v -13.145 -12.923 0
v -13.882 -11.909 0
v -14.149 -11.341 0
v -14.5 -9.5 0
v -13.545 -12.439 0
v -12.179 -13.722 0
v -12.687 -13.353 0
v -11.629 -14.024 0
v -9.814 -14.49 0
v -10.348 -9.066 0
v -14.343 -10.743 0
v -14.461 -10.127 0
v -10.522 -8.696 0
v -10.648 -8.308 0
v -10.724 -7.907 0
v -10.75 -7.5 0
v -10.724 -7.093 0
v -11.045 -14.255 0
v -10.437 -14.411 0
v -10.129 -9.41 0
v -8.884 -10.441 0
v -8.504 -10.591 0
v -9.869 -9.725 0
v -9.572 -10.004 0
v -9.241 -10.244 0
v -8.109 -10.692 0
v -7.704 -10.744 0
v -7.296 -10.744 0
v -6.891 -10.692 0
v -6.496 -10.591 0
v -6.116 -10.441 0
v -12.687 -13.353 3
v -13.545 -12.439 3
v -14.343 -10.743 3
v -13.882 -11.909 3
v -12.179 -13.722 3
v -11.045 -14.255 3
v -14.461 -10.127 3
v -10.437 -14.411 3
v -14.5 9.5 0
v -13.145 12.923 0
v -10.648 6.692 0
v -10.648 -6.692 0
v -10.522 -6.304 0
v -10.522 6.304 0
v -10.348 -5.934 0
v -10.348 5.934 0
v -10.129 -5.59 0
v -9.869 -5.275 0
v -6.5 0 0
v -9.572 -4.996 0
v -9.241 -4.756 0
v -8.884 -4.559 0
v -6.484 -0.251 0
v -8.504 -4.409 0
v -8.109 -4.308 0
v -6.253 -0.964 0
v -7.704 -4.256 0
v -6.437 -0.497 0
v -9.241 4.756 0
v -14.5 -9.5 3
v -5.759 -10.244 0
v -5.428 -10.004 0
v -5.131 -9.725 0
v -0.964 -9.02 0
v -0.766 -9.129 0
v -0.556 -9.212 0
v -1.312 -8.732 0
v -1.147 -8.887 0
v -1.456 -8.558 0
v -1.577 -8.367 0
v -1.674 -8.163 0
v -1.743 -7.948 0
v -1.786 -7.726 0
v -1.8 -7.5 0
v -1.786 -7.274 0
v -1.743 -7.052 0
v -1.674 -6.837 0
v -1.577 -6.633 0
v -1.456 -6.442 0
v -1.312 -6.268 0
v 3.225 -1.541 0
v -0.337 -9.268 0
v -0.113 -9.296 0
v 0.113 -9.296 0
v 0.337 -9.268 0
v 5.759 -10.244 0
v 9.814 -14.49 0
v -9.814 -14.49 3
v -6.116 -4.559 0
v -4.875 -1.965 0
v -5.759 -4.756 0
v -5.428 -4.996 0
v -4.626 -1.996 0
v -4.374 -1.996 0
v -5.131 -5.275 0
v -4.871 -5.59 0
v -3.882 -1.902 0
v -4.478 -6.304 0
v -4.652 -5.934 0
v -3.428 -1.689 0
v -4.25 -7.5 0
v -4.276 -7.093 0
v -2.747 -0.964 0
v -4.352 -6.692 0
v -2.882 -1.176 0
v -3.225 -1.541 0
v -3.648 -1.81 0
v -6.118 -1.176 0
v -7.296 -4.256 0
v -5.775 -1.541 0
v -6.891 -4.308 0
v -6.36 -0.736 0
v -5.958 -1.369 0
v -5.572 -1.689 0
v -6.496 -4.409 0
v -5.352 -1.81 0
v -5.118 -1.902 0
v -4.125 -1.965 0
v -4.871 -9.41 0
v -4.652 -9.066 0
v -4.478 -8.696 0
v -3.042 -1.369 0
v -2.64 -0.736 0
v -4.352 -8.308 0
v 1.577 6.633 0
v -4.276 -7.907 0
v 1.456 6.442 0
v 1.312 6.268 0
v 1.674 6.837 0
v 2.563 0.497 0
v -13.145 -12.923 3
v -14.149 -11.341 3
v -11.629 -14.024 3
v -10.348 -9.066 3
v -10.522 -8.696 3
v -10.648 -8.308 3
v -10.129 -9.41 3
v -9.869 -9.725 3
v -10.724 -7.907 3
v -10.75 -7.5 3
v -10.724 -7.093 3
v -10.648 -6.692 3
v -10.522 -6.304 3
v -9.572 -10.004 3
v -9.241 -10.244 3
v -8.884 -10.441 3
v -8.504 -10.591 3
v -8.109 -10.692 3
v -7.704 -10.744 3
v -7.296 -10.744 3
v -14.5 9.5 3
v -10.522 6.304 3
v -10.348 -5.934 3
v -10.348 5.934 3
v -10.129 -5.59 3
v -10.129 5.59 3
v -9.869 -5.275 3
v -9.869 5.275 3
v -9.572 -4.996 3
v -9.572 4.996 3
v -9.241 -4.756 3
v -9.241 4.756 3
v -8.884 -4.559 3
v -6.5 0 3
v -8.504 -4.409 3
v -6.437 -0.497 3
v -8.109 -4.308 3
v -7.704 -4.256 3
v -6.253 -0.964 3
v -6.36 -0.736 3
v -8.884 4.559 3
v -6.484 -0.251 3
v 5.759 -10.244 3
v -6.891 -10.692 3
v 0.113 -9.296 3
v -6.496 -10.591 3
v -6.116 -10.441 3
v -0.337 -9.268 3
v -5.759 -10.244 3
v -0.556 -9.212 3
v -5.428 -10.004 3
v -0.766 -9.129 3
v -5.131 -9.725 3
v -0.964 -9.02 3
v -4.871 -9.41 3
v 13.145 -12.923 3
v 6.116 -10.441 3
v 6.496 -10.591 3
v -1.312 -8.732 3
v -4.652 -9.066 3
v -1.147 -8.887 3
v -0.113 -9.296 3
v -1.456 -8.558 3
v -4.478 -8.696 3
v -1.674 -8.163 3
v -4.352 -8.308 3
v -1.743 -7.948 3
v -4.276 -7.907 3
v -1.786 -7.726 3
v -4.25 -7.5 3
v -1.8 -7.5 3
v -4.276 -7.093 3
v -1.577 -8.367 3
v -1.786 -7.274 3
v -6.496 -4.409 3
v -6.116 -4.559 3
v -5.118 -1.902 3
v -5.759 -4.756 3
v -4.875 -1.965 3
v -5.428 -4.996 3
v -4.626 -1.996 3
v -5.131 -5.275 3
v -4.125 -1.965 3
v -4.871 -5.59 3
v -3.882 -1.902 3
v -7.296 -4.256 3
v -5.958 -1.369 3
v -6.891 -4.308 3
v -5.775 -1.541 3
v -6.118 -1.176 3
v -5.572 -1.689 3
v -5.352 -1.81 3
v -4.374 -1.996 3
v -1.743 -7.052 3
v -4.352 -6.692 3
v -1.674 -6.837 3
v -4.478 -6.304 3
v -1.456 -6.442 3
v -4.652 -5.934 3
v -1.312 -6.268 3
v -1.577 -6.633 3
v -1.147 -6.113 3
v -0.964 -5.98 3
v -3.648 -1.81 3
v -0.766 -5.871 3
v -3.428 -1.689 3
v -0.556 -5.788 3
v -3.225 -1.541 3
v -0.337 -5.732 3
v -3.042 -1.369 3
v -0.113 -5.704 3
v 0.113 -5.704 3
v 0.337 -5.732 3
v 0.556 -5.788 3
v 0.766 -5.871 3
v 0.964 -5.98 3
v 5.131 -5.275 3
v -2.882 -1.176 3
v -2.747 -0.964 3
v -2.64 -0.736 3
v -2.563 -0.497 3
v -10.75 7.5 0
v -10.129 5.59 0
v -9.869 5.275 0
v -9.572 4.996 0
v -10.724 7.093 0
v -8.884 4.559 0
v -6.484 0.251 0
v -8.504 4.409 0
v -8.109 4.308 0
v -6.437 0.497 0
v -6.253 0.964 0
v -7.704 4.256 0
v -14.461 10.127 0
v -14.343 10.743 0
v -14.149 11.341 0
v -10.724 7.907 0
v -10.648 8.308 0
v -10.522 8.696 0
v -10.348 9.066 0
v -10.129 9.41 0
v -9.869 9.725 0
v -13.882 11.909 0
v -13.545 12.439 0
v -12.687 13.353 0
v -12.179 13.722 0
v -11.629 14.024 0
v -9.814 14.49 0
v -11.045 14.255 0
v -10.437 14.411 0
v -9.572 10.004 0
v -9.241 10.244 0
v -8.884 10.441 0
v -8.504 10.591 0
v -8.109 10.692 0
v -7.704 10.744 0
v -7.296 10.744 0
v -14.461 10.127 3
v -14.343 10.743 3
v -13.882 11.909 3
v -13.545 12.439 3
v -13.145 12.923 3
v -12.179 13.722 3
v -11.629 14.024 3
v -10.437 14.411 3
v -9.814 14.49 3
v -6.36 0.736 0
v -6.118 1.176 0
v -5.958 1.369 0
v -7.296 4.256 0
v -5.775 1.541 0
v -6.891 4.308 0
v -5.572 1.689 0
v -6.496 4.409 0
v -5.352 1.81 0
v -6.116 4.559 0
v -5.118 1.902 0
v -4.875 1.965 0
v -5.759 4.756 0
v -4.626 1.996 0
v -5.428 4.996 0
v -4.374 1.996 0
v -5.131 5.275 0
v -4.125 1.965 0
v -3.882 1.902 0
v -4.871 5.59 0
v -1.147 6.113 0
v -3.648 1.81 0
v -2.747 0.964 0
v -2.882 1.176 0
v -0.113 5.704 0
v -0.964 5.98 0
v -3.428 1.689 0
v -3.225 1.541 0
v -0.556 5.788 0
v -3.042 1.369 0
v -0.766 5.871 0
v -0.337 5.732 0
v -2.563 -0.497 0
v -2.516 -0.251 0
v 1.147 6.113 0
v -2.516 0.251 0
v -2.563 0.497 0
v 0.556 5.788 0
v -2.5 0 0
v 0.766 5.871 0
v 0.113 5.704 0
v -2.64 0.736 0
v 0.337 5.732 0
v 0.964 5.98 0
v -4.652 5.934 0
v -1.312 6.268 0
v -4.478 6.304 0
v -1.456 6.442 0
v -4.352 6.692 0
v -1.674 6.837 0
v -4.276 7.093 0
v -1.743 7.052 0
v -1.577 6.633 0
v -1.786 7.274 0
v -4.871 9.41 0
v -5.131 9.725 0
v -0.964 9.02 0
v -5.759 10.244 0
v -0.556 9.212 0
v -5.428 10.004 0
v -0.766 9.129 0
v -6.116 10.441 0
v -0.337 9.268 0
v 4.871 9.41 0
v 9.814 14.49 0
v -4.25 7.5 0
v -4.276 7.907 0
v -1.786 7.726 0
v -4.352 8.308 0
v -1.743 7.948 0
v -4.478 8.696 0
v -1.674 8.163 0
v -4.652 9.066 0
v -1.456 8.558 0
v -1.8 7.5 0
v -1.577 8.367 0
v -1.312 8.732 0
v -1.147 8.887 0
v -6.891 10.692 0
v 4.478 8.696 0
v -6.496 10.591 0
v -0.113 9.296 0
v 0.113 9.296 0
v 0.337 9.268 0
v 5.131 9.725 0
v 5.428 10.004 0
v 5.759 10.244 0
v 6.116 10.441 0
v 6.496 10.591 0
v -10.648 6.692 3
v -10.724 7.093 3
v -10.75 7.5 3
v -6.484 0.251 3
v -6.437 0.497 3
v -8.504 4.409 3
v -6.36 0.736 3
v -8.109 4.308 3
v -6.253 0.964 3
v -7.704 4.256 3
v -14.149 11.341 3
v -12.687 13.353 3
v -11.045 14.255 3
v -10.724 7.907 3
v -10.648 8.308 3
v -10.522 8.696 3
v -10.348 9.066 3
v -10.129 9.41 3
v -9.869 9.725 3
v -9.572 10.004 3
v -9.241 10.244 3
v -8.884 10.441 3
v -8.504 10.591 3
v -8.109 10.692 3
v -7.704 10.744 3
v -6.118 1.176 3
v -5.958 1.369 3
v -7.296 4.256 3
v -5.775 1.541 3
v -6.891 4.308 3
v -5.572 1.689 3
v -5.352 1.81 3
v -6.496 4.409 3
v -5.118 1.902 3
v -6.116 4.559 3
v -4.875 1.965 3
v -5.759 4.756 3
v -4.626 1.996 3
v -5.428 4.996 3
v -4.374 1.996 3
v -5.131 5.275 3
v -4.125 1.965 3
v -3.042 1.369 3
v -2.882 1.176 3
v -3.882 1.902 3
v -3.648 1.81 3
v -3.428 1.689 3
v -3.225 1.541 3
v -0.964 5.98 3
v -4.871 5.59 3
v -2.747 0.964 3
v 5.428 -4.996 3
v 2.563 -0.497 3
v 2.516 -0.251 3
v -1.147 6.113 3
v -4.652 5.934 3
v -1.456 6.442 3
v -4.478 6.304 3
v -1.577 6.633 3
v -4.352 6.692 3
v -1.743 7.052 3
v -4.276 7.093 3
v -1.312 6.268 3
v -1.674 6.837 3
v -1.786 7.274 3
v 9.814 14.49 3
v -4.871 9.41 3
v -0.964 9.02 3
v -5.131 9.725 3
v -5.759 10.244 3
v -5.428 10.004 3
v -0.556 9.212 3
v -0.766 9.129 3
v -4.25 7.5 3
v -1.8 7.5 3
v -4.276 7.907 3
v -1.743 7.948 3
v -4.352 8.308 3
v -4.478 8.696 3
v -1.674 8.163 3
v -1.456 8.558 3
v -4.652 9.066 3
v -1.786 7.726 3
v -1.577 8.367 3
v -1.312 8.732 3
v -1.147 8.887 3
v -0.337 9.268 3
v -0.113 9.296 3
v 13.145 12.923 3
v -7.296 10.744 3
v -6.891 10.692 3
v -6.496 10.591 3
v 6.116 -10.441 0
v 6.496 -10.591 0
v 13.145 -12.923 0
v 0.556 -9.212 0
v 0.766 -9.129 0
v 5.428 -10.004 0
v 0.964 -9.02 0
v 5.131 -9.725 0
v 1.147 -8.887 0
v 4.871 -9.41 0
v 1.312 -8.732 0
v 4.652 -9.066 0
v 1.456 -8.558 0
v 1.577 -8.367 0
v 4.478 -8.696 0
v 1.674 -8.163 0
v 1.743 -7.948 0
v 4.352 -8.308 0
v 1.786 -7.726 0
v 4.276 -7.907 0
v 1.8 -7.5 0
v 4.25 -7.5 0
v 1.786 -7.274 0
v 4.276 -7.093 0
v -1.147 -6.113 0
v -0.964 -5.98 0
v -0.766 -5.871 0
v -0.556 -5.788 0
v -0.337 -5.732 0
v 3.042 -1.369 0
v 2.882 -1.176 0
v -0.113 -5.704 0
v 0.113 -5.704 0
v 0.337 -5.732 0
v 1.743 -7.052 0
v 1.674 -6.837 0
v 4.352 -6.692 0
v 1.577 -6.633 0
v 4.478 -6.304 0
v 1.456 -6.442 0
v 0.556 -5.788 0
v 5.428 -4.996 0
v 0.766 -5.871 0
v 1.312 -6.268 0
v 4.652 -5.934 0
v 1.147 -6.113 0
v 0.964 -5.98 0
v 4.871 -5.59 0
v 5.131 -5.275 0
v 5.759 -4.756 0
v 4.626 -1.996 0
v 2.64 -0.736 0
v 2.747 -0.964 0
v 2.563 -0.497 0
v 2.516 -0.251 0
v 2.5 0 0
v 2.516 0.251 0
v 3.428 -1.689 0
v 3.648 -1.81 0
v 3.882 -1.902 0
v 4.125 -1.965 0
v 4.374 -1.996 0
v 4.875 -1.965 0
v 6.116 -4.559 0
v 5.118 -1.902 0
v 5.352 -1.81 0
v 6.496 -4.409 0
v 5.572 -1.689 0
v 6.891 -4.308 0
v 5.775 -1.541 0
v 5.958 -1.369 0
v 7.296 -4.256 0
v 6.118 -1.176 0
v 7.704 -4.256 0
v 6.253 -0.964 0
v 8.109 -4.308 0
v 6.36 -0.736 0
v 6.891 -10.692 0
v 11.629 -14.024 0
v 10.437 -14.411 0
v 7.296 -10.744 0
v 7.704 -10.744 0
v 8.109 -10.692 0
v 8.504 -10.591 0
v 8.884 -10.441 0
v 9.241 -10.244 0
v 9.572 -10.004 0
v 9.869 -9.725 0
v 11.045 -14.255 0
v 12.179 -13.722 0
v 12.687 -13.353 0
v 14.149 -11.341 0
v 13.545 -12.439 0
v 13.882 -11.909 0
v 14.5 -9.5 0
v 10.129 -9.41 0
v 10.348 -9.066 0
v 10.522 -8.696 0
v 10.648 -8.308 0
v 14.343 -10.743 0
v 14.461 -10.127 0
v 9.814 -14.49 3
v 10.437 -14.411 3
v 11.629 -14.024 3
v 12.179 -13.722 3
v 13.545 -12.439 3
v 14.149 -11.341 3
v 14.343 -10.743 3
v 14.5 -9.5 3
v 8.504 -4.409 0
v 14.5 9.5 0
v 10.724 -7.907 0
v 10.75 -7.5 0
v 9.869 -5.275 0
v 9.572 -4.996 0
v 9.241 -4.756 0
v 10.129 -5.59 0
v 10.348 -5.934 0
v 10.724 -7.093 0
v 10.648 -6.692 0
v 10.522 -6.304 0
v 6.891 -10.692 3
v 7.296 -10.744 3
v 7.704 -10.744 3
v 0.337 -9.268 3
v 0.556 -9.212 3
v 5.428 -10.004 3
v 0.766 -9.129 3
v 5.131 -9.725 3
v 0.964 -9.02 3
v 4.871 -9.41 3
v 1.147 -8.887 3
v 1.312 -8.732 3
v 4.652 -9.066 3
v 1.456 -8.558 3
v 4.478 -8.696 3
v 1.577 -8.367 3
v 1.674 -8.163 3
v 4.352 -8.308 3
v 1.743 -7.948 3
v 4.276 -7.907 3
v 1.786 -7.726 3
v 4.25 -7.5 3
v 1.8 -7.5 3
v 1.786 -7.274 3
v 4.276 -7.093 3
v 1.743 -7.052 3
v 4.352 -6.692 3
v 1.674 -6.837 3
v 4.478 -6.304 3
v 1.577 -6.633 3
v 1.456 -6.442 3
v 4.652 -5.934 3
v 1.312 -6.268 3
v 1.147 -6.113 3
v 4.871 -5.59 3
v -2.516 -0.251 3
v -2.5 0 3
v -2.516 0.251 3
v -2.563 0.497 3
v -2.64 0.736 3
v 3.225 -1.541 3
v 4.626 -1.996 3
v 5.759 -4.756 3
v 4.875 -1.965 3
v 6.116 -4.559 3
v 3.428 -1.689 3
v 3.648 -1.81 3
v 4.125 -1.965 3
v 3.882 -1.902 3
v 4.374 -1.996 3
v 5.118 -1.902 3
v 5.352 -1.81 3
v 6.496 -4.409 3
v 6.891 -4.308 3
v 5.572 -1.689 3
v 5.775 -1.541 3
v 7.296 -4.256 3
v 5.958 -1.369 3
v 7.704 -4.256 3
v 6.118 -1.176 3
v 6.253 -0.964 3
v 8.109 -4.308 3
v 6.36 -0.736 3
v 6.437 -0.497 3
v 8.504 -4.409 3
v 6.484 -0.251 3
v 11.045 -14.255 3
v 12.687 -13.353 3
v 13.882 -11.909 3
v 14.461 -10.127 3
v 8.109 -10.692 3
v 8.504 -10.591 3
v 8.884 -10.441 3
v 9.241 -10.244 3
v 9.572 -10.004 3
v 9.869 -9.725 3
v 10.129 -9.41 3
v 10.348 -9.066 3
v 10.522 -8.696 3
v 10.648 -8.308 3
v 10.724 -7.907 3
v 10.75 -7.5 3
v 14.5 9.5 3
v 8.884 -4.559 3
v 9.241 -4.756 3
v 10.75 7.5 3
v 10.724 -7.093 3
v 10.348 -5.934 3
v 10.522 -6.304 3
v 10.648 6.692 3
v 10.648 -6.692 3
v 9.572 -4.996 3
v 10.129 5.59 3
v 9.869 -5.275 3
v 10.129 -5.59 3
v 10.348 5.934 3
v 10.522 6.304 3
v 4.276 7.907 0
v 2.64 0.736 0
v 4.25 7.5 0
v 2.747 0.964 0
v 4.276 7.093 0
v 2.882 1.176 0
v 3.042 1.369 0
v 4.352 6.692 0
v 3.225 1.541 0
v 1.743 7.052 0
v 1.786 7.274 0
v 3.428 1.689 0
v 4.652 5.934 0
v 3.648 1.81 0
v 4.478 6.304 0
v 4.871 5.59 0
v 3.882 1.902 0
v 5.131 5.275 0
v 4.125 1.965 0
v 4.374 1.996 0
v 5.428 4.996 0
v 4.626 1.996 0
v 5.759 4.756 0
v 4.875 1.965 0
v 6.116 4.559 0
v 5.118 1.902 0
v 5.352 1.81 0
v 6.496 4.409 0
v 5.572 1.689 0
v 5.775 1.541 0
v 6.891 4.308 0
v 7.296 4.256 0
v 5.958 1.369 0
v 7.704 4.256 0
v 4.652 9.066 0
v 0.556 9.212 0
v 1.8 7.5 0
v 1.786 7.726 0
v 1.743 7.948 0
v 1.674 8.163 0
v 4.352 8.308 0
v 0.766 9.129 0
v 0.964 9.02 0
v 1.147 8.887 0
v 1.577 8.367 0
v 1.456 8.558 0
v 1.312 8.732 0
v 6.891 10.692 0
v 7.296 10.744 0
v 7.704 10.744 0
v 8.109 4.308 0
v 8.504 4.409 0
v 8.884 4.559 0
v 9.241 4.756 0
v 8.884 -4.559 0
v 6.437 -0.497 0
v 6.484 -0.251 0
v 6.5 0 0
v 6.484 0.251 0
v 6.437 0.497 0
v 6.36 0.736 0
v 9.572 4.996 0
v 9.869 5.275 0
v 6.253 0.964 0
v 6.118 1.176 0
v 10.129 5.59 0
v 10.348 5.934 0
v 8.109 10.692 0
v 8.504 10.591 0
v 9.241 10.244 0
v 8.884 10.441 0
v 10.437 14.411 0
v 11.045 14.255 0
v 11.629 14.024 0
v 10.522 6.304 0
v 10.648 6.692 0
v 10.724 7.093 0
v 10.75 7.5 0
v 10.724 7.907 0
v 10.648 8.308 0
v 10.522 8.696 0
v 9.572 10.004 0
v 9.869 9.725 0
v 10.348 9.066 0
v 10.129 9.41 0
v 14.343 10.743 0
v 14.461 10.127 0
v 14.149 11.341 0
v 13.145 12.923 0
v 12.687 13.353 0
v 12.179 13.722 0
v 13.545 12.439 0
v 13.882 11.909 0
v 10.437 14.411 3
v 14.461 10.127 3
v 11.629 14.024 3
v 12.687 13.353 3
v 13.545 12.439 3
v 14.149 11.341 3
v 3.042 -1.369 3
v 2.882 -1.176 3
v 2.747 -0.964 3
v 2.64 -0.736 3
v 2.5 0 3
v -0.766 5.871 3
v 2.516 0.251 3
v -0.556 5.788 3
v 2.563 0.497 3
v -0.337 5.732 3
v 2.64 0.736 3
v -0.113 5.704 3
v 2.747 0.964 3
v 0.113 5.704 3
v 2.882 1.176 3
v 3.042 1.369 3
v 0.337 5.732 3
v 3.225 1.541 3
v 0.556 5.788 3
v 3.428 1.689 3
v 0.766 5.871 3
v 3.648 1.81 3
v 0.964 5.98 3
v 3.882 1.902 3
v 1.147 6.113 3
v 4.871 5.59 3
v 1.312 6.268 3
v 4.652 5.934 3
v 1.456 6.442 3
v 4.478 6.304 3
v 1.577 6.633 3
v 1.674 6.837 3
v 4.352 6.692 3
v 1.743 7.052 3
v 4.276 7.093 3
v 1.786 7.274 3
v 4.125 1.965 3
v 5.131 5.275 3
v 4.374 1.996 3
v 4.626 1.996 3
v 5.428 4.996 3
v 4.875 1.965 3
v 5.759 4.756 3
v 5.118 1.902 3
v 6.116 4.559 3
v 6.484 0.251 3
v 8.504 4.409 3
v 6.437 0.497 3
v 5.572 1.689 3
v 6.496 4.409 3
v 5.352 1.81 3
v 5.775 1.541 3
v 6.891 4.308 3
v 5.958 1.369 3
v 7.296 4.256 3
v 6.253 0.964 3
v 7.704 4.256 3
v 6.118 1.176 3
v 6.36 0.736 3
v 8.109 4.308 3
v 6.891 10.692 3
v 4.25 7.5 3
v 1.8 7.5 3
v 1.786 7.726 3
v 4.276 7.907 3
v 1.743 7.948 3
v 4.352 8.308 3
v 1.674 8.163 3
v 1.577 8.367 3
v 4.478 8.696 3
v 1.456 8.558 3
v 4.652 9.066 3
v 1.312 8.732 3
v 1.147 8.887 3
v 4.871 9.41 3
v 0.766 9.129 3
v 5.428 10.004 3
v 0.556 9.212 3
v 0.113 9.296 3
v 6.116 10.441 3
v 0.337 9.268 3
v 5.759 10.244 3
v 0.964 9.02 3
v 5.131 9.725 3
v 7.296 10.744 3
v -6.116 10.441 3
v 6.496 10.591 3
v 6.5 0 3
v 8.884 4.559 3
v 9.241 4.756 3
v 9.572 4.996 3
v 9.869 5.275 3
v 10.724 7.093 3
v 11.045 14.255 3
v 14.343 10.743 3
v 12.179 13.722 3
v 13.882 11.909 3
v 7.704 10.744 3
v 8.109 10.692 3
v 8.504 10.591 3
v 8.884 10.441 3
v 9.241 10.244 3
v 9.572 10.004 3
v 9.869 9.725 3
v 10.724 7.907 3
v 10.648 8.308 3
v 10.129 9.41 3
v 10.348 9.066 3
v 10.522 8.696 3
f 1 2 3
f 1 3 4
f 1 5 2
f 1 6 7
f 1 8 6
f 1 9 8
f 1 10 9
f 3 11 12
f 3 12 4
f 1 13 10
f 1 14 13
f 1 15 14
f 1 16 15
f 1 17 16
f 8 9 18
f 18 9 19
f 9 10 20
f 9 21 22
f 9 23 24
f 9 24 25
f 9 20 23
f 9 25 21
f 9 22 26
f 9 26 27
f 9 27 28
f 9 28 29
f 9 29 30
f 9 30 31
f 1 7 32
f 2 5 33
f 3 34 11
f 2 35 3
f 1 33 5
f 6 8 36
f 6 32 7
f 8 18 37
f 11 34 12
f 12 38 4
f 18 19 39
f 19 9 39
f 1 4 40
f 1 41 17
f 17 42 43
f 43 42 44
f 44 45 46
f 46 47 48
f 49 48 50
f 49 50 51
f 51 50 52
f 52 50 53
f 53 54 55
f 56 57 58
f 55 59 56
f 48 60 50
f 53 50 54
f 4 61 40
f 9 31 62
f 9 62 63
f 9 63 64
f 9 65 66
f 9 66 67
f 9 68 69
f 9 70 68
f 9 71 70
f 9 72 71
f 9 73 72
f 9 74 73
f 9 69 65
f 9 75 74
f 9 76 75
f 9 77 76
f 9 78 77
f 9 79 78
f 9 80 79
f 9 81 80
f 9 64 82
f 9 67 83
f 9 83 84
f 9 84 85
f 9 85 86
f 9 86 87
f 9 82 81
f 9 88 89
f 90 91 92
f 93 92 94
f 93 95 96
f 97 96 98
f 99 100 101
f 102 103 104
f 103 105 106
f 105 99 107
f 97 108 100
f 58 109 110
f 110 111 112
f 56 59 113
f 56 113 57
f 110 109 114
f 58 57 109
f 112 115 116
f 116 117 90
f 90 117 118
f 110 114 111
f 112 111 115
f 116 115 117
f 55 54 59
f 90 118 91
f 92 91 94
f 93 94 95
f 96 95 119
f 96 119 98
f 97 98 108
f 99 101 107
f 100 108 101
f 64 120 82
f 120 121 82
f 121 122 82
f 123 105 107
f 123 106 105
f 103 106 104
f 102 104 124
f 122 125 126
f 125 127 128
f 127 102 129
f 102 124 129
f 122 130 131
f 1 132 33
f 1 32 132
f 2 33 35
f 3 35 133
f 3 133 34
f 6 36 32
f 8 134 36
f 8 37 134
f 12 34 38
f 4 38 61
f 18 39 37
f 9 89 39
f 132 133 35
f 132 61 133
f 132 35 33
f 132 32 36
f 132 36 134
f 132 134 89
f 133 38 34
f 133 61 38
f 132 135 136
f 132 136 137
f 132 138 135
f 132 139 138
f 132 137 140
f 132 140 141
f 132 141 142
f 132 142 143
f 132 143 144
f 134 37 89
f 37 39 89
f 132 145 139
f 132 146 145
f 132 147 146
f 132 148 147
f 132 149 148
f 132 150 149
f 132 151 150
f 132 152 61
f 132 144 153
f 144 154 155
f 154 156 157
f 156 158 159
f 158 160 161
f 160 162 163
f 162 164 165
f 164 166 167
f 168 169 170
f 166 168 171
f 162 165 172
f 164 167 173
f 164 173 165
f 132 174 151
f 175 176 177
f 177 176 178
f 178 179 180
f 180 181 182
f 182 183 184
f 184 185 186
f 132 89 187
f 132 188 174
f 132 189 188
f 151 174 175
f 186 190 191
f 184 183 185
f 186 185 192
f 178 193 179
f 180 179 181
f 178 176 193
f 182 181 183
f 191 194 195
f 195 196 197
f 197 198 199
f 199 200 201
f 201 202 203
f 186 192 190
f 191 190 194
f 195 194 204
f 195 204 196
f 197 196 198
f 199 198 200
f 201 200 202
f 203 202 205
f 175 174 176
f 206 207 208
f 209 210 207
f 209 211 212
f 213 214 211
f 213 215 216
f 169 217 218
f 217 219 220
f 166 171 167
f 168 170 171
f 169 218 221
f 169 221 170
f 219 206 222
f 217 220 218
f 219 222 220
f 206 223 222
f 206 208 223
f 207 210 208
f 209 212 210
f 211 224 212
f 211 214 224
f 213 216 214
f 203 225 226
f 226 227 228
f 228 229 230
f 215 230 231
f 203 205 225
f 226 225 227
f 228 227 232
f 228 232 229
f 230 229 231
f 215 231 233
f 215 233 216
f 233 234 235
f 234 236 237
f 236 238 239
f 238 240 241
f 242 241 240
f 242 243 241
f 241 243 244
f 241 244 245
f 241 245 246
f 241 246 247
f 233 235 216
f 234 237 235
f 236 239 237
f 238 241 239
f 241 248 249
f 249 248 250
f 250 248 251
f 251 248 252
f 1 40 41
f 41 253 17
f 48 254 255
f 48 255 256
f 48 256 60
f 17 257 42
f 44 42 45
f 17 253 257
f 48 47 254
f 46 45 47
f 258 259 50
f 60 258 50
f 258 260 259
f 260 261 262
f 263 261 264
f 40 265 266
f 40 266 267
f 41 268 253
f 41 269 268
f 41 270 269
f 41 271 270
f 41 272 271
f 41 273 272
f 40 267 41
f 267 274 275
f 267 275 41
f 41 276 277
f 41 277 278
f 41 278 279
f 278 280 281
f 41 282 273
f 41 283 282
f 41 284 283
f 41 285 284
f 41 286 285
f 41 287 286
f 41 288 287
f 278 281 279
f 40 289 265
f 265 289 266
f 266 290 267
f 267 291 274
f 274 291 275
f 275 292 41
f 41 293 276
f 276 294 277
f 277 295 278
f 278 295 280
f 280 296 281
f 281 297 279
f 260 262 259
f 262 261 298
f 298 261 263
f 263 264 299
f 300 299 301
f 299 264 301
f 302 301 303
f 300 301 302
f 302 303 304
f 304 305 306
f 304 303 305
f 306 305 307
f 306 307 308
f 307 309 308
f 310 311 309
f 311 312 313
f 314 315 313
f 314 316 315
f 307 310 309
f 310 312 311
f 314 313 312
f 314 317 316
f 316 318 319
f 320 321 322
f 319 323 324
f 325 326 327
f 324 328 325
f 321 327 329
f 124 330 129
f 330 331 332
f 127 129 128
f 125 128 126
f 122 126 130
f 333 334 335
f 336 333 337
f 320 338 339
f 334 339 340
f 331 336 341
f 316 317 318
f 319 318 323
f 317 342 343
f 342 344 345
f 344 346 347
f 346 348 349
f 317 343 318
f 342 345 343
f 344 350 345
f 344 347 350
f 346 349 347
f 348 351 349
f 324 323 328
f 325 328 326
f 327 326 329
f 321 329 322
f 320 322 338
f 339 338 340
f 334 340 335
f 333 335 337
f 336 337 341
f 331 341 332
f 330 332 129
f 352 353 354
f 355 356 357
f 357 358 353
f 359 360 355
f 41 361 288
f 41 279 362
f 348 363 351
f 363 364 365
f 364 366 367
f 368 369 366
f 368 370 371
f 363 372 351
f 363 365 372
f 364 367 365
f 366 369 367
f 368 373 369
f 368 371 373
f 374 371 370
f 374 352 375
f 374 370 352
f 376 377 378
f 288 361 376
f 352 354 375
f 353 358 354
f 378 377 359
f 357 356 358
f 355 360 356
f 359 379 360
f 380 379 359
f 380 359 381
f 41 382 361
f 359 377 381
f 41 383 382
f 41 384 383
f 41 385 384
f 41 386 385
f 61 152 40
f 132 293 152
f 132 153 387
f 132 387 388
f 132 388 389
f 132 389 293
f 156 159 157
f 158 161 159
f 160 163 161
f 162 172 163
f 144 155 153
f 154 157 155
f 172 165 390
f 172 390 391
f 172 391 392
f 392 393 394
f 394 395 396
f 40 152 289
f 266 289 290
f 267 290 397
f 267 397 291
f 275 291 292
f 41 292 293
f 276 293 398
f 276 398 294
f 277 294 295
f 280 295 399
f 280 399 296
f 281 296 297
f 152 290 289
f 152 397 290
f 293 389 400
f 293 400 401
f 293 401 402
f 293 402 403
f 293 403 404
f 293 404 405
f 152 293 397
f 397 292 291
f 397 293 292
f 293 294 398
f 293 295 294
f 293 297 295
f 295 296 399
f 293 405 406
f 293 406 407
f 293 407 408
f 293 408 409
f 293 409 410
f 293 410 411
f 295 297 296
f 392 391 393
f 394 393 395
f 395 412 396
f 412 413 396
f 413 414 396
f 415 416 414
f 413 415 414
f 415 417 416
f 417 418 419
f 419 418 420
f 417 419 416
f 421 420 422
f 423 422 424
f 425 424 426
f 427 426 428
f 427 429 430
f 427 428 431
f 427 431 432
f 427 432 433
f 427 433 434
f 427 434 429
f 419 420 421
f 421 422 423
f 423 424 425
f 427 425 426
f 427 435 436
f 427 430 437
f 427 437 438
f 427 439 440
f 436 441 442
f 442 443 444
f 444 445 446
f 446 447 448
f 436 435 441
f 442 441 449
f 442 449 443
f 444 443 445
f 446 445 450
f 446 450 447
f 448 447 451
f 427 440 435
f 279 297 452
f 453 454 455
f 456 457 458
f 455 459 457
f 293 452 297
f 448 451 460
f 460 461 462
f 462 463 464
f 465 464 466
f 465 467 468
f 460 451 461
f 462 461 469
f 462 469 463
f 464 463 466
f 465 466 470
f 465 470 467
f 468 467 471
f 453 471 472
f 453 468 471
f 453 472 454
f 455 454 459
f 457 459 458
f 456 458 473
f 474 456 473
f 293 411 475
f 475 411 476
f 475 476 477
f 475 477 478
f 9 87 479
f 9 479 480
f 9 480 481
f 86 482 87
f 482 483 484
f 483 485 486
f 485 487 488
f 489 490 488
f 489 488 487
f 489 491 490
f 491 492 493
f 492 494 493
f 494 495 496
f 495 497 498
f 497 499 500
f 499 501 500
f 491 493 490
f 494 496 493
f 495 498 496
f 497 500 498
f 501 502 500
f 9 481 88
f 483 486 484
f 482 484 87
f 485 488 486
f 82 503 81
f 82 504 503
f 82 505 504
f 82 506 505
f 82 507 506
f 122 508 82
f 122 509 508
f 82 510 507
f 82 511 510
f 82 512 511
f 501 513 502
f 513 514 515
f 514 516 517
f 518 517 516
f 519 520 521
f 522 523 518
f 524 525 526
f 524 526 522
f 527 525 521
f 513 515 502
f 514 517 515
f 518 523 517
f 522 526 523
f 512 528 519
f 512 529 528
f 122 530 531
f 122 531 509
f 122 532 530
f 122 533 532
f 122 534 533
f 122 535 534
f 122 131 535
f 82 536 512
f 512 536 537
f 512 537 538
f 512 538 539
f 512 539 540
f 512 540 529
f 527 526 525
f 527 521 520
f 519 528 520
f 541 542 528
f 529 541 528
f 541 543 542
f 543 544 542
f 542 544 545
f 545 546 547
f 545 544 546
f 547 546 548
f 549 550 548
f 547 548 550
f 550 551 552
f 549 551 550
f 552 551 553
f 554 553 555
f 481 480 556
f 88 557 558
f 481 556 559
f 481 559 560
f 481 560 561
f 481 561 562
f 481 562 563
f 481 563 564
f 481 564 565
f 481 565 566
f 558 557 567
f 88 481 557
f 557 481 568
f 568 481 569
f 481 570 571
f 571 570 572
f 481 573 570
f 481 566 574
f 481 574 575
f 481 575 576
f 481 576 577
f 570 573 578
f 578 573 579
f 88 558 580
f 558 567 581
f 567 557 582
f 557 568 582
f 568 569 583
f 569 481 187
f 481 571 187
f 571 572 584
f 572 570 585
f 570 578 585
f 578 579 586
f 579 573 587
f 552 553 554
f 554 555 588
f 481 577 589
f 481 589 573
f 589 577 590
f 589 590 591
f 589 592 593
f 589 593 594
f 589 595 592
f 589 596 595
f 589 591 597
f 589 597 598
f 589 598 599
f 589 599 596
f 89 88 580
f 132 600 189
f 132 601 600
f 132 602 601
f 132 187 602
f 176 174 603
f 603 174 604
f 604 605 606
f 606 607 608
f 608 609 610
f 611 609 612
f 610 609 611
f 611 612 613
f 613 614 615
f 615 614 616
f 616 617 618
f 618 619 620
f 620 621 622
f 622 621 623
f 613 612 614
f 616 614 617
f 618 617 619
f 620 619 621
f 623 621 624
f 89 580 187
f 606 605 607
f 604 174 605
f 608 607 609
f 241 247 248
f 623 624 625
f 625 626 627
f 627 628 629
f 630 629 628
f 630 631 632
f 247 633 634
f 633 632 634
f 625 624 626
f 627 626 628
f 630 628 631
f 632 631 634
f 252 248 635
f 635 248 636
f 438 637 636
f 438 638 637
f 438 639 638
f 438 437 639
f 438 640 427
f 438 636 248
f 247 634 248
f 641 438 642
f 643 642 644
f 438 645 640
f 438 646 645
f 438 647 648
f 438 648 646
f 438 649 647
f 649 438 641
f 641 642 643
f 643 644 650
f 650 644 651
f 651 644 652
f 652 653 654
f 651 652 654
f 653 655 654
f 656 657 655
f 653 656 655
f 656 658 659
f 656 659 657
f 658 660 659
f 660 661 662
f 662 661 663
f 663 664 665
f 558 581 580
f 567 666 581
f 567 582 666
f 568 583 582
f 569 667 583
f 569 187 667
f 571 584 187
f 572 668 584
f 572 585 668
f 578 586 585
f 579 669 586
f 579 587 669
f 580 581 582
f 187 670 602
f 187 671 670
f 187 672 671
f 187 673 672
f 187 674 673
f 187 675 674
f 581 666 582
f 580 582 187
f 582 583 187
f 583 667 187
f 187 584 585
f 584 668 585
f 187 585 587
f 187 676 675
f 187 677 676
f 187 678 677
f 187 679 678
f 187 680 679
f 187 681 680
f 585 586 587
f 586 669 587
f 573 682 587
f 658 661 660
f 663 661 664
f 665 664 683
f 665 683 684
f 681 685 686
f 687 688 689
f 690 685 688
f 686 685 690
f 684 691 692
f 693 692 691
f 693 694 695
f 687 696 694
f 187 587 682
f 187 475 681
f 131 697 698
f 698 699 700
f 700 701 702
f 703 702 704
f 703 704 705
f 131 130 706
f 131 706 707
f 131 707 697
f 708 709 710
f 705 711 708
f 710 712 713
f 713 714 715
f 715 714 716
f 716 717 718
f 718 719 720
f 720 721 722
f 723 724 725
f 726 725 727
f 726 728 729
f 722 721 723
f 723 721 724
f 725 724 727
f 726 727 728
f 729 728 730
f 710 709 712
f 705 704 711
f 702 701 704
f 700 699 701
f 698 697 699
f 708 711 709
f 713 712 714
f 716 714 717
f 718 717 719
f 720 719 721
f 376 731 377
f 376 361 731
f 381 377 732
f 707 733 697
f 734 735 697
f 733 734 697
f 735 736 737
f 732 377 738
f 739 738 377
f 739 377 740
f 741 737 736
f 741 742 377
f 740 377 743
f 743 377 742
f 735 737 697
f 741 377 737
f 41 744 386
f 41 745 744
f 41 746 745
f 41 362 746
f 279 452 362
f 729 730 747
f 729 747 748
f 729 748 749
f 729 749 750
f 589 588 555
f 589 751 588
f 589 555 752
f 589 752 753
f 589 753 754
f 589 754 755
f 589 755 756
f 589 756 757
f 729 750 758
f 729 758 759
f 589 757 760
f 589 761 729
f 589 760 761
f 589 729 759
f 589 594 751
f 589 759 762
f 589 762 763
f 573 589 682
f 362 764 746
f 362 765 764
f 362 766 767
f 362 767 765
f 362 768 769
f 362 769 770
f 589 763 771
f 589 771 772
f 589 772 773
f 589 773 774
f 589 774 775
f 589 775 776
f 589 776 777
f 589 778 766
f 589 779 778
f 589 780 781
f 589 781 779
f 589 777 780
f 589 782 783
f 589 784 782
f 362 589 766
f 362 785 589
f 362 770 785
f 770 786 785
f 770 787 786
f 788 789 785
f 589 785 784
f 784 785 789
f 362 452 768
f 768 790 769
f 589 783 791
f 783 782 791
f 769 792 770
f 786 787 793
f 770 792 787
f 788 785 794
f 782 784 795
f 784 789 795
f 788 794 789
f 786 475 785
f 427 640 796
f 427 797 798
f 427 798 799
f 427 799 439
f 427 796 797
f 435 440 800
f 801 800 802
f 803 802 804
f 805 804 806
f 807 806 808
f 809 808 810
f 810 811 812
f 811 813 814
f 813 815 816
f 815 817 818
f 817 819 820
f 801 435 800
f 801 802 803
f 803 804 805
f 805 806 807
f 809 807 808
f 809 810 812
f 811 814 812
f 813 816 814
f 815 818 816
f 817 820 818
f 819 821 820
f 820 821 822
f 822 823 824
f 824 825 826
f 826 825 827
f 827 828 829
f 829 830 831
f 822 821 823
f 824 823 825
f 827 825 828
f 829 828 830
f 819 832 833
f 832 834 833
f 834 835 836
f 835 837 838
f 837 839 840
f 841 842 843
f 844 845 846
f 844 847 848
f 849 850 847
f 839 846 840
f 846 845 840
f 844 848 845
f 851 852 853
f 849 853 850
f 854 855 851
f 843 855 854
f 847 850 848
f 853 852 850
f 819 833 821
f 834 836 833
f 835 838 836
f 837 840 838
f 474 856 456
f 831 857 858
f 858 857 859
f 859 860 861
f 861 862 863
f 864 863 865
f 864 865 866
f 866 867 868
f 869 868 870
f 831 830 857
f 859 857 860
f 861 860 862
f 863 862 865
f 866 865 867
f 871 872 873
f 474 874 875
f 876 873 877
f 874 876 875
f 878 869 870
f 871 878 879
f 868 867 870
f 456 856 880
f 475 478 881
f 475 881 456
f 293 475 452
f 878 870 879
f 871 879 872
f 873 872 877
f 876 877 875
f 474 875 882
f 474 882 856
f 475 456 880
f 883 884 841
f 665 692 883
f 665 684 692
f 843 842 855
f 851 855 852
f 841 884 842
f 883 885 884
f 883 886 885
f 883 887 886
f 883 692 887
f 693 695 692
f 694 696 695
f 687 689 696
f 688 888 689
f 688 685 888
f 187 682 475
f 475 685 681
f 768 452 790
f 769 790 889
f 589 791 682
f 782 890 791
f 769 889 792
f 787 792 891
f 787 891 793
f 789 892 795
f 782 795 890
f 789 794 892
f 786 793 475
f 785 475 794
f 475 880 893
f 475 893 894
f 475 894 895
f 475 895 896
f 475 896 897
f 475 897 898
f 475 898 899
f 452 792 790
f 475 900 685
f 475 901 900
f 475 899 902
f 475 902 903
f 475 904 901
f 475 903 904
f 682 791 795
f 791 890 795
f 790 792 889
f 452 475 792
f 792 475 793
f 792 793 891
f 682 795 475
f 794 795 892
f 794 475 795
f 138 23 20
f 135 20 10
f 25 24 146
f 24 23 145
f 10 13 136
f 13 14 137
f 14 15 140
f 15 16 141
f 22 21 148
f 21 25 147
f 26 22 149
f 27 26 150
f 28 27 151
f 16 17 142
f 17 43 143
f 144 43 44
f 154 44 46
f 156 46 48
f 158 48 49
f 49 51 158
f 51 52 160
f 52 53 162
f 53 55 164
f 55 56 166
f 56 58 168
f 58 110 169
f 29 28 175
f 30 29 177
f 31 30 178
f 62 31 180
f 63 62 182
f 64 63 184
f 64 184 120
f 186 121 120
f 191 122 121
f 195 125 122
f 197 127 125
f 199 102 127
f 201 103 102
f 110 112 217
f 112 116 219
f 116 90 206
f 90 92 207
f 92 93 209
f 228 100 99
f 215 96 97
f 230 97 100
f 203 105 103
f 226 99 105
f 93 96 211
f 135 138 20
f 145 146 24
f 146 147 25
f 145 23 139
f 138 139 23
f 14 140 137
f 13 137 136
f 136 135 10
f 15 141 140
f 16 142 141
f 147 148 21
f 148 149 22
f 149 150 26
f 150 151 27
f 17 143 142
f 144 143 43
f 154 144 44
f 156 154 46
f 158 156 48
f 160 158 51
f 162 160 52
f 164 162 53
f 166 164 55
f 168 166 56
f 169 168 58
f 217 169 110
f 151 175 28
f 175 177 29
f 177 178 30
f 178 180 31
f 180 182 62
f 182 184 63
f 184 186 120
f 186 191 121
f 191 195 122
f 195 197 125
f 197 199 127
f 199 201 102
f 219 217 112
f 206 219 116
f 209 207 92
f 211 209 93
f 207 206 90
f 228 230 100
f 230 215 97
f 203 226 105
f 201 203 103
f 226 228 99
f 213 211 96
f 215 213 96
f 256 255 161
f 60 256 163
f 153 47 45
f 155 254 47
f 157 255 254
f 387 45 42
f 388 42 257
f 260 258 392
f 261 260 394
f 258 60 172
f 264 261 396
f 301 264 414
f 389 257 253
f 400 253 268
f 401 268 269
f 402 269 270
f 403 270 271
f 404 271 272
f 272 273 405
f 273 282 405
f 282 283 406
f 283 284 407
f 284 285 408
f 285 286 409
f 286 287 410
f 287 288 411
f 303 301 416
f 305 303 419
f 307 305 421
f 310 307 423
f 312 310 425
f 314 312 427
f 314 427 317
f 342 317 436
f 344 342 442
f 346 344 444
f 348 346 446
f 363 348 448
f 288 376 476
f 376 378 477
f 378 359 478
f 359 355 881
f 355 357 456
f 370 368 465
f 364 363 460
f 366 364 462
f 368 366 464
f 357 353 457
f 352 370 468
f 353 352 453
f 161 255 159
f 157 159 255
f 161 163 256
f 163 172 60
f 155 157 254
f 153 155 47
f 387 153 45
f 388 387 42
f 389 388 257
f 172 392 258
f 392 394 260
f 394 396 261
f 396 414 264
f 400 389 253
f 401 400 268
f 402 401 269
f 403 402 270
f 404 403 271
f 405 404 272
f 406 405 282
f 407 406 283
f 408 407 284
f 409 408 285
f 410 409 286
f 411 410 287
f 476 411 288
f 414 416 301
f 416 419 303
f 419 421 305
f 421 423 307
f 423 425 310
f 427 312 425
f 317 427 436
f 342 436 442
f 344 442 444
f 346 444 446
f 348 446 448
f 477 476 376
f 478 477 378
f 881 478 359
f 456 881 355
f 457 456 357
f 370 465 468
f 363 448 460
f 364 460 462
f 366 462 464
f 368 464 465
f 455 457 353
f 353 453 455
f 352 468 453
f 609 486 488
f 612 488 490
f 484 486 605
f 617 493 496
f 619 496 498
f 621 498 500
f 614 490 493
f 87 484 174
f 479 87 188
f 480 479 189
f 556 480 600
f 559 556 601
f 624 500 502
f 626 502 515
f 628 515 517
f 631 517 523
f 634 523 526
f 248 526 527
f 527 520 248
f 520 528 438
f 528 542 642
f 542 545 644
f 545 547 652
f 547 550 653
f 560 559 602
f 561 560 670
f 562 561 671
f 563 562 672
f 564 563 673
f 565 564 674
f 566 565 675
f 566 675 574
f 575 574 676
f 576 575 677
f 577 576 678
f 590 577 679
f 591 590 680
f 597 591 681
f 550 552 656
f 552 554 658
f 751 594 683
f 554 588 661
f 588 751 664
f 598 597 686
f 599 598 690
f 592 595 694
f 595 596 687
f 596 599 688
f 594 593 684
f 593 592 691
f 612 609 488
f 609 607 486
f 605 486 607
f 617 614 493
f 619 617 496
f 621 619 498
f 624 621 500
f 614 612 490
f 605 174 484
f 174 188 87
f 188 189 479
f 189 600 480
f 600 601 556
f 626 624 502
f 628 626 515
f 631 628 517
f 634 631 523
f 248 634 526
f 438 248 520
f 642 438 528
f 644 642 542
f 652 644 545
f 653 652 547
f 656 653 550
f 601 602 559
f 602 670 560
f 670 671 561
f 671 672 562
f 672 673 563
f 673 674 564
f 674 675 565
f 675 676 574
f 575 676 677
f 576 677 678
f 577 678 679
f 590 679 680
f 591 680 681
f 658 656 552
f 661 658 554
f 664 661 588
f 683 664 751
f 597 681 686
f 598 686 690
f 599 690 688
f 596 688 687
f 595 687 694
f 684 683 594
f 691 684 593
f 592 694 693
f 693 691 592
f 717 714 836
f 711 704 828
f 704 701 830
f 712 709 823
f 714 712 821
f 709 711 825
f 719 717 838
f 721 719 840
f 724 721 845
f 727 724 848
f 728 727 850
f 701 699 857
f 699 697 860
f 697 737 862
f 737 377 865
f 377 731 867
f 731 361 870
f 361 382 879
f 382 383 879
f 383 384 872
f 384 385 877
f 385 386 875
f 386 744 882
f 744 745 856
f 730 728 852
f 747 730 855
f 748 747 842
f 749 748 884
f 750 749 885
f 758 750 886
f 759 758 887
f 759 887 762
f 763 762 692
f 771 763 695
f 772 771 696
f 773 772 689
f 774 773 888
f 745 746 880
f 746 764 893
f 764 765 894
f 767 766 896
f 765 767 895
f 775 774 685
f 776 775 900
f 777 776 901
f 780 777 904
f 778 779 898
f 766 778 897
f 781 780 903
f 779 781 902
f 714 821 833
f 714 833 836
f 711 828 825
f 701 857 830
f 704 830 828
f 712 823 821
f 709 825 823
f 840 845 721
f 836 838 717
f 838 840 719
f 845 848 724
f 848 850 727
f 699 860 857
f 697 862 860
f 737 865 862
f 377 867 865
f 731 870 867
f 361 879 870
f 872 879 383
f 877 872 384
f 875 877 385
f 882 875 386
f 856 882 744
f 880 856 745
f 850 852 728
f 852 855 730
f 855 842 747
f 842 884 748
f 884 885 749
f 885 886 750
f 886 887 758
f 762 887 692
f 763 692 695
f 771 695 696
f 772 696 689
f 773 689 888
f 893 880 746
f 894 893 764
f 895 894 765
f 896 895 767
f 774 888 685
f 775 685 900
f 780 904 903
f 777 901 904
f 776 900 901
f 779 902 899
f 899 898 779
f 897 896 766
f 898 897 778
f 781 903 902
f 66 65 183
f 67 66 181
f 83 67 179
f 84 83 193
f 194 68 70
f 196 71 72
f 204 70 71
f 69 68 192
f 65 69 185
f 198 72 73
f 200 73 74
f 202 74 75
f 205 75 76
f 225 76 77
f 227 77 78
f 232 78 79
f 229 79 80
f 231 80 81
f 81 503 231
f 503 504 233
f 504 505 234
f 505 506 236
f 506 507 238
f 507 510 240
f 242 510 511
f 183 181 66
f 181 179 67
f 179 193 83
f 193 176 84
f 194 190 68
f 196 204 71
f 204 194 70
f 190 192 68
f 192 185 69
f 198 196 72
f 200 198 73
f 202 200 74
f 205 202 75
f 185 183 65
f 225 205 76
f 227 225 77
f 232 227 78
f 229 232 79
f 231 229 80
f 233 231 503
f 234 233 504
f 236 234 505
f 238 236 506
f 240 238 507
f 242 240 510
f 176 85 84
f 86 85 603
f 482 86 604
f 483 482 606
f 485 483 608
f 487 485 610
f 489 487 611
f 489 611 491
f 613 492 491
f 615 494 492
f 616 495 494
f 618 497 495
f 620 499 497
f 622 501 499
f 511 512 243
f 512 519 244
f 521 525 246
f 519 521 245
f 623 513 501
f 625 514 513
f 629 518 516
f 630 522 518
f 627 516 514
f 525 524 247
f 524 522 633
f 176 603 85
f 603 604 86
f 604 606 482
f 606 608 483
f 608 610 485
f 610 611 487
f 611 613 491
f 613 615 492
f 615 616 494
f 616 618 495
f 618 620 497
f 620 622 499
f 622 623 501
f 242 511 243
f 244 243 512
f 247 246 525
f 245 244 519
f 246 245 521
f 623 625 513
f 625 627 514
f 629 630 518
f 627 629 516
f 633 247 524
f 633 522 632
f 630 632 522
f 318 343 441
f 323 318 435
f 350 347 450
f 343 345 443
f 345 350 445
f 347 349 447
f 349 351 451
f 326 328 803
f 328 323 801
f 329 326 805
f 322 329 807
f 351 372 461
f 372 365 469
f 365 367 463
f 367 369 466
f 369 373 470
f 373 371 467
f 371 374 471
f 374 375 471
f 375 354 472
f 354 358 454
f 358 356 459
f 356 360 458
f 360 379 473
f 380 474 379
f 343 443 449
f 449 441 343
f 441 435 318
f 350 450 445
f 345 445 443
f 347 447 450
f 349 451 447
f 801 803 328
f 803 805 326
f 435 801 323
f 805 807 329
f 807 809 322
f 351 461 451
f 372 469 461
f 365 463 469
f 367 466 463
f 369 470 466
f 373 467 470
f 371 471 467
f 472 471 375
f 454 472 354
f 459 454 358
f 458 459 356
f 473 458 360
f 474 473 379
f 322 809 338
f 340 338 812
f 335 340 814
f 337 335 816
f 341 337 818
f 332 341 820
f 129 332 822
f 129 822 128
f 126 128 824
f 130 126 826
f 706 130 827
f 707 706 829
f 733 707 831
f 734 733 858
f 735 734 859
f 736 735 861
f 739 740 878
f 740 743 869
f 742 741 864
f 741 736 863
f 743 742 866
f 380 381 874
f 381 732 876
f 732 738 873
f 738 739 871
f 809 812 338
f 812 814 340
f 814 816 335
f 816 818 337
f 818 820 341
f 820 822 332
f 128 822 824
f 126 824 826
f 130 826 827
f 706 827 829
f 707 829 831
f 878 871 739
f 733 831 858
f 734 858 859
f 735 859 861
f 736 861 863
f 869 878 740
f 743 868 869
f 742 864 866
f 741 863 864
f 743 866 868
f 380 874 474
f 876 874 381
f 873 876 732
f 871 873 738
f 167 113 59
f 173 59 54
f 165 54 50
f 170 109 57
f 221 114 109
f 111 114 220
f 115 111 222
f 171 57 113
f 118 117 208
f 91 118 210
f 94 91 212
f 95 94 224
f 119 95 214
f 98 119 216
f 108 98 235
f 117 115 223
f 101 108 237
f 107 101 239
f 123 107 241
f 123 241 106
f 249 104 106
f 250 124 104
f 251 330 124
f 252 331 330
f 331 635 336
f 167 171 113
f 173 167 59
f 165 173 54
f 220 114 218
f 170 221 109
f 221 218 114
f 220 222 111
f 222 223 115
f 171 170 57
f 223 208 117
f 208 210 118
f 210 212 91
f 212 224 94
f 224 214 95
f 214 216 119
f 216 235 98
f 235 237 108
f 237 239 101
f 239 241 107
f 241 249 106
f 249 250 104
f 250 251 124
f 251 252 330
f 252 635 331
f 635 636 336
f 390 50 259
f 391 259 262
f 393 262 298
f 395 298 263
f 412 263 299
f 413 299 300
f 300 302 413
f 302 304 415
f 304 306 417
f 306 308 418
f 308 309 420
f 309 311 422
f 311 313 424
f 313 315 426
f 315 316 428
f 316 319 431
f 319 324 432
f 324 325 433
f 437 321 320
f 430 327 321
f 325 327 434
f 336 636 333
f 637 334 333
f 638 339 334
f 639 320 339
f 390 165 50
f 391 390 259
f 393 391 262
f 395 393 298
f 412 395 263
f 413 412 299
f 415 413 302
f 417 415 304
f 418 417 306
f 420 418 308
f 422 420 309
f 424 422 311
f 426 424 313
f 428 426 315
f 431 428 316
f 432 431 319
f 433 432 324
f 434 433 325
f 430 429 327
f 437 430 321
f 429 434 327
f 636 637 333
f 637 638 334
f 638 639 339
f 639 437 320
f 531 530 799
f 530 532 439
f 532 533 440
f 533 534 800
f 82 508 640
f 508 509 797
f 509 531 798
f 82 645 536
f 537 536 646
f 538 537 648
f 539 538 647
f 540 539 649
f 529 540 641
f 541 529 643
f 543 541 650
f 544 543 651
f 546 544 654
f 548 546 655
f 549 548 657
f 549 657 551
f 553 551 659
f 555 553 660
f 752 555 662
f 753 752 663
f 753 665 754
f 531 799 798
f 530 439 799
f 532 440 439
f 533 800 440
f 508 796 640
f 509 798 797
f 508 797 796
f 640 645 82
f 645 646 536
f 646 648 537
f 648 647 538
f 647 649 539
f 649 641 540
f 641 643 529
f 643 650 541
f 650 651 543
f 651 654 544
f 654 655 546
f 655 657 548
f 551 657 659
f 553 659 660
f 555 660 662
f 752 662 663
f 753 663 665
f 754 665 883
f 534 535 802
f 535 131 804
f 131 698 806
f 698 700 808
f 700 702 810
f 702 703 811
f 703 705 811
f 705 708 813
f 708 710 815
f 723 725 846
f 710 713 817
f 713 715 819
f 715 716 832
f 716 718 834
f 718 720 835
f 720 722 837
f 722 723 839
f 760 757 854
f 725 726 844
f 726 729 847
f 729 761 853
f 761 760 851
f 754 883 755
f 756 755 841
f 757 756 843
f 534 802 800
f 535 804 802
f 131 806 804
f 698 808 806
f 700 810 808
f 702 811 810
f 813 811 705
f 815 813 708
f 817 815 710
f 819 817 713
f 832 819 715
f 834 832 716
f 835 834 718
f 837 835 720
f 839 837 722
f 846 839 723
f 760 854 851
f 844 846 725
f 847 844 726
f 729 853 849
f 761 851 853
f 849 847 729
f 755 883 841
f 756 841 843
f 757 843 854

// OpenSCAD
$fn = 50;

difference() {
	union() {
		hull() {
			translate(v = [-9.5, 9.5, 0]) {
				cylinder(h = 3, r = 5);
			}
			translate(v = [9.5, 9.5, 0]) {
				cylinder(h = 3, r = 5);
			}
			translate(v = [-9.5, -9.5, 0]) {
				cylinder(h = 3, r = 5);
			}
			translate(v = [9.5, -9.5, 0]) {
				cylinder(h = 3, r = 5);
			}
		}
	}
	union() {
		translate(v = [-7.5, -7.5, 0]) {
			cylinder(h = 3, r = 3.25);
		}
		translate(v = [-7.5, 7.5, 0]) {
			cylinder(h = 3, r = 3.25);
		}
		translate(v = [7.5, -7.5, 0]) {
			cylinder(h = 3, r = 3.25);
		}
		translate(v = [7.5, 7.5, 0]) {
			cylinder(h = 3, r = 3.25);
		}
		translate(v = [0.0, -7.5, 0]) {
			cylinder(h = 3, r = 1.8);
		}
		translate(v = [0.0, 7.5, 0]) {
			cylinder(h = 3, r = 1.8);
		}
		translate(v = [-4.5, 0, 0.0]) {
			cylinder(h = 3, r = 2.0);
		}
		translate(v = [4.5, 0, 0.0]) {
			cylinder(h = 3, r = 2.0);
		}
	}
}
